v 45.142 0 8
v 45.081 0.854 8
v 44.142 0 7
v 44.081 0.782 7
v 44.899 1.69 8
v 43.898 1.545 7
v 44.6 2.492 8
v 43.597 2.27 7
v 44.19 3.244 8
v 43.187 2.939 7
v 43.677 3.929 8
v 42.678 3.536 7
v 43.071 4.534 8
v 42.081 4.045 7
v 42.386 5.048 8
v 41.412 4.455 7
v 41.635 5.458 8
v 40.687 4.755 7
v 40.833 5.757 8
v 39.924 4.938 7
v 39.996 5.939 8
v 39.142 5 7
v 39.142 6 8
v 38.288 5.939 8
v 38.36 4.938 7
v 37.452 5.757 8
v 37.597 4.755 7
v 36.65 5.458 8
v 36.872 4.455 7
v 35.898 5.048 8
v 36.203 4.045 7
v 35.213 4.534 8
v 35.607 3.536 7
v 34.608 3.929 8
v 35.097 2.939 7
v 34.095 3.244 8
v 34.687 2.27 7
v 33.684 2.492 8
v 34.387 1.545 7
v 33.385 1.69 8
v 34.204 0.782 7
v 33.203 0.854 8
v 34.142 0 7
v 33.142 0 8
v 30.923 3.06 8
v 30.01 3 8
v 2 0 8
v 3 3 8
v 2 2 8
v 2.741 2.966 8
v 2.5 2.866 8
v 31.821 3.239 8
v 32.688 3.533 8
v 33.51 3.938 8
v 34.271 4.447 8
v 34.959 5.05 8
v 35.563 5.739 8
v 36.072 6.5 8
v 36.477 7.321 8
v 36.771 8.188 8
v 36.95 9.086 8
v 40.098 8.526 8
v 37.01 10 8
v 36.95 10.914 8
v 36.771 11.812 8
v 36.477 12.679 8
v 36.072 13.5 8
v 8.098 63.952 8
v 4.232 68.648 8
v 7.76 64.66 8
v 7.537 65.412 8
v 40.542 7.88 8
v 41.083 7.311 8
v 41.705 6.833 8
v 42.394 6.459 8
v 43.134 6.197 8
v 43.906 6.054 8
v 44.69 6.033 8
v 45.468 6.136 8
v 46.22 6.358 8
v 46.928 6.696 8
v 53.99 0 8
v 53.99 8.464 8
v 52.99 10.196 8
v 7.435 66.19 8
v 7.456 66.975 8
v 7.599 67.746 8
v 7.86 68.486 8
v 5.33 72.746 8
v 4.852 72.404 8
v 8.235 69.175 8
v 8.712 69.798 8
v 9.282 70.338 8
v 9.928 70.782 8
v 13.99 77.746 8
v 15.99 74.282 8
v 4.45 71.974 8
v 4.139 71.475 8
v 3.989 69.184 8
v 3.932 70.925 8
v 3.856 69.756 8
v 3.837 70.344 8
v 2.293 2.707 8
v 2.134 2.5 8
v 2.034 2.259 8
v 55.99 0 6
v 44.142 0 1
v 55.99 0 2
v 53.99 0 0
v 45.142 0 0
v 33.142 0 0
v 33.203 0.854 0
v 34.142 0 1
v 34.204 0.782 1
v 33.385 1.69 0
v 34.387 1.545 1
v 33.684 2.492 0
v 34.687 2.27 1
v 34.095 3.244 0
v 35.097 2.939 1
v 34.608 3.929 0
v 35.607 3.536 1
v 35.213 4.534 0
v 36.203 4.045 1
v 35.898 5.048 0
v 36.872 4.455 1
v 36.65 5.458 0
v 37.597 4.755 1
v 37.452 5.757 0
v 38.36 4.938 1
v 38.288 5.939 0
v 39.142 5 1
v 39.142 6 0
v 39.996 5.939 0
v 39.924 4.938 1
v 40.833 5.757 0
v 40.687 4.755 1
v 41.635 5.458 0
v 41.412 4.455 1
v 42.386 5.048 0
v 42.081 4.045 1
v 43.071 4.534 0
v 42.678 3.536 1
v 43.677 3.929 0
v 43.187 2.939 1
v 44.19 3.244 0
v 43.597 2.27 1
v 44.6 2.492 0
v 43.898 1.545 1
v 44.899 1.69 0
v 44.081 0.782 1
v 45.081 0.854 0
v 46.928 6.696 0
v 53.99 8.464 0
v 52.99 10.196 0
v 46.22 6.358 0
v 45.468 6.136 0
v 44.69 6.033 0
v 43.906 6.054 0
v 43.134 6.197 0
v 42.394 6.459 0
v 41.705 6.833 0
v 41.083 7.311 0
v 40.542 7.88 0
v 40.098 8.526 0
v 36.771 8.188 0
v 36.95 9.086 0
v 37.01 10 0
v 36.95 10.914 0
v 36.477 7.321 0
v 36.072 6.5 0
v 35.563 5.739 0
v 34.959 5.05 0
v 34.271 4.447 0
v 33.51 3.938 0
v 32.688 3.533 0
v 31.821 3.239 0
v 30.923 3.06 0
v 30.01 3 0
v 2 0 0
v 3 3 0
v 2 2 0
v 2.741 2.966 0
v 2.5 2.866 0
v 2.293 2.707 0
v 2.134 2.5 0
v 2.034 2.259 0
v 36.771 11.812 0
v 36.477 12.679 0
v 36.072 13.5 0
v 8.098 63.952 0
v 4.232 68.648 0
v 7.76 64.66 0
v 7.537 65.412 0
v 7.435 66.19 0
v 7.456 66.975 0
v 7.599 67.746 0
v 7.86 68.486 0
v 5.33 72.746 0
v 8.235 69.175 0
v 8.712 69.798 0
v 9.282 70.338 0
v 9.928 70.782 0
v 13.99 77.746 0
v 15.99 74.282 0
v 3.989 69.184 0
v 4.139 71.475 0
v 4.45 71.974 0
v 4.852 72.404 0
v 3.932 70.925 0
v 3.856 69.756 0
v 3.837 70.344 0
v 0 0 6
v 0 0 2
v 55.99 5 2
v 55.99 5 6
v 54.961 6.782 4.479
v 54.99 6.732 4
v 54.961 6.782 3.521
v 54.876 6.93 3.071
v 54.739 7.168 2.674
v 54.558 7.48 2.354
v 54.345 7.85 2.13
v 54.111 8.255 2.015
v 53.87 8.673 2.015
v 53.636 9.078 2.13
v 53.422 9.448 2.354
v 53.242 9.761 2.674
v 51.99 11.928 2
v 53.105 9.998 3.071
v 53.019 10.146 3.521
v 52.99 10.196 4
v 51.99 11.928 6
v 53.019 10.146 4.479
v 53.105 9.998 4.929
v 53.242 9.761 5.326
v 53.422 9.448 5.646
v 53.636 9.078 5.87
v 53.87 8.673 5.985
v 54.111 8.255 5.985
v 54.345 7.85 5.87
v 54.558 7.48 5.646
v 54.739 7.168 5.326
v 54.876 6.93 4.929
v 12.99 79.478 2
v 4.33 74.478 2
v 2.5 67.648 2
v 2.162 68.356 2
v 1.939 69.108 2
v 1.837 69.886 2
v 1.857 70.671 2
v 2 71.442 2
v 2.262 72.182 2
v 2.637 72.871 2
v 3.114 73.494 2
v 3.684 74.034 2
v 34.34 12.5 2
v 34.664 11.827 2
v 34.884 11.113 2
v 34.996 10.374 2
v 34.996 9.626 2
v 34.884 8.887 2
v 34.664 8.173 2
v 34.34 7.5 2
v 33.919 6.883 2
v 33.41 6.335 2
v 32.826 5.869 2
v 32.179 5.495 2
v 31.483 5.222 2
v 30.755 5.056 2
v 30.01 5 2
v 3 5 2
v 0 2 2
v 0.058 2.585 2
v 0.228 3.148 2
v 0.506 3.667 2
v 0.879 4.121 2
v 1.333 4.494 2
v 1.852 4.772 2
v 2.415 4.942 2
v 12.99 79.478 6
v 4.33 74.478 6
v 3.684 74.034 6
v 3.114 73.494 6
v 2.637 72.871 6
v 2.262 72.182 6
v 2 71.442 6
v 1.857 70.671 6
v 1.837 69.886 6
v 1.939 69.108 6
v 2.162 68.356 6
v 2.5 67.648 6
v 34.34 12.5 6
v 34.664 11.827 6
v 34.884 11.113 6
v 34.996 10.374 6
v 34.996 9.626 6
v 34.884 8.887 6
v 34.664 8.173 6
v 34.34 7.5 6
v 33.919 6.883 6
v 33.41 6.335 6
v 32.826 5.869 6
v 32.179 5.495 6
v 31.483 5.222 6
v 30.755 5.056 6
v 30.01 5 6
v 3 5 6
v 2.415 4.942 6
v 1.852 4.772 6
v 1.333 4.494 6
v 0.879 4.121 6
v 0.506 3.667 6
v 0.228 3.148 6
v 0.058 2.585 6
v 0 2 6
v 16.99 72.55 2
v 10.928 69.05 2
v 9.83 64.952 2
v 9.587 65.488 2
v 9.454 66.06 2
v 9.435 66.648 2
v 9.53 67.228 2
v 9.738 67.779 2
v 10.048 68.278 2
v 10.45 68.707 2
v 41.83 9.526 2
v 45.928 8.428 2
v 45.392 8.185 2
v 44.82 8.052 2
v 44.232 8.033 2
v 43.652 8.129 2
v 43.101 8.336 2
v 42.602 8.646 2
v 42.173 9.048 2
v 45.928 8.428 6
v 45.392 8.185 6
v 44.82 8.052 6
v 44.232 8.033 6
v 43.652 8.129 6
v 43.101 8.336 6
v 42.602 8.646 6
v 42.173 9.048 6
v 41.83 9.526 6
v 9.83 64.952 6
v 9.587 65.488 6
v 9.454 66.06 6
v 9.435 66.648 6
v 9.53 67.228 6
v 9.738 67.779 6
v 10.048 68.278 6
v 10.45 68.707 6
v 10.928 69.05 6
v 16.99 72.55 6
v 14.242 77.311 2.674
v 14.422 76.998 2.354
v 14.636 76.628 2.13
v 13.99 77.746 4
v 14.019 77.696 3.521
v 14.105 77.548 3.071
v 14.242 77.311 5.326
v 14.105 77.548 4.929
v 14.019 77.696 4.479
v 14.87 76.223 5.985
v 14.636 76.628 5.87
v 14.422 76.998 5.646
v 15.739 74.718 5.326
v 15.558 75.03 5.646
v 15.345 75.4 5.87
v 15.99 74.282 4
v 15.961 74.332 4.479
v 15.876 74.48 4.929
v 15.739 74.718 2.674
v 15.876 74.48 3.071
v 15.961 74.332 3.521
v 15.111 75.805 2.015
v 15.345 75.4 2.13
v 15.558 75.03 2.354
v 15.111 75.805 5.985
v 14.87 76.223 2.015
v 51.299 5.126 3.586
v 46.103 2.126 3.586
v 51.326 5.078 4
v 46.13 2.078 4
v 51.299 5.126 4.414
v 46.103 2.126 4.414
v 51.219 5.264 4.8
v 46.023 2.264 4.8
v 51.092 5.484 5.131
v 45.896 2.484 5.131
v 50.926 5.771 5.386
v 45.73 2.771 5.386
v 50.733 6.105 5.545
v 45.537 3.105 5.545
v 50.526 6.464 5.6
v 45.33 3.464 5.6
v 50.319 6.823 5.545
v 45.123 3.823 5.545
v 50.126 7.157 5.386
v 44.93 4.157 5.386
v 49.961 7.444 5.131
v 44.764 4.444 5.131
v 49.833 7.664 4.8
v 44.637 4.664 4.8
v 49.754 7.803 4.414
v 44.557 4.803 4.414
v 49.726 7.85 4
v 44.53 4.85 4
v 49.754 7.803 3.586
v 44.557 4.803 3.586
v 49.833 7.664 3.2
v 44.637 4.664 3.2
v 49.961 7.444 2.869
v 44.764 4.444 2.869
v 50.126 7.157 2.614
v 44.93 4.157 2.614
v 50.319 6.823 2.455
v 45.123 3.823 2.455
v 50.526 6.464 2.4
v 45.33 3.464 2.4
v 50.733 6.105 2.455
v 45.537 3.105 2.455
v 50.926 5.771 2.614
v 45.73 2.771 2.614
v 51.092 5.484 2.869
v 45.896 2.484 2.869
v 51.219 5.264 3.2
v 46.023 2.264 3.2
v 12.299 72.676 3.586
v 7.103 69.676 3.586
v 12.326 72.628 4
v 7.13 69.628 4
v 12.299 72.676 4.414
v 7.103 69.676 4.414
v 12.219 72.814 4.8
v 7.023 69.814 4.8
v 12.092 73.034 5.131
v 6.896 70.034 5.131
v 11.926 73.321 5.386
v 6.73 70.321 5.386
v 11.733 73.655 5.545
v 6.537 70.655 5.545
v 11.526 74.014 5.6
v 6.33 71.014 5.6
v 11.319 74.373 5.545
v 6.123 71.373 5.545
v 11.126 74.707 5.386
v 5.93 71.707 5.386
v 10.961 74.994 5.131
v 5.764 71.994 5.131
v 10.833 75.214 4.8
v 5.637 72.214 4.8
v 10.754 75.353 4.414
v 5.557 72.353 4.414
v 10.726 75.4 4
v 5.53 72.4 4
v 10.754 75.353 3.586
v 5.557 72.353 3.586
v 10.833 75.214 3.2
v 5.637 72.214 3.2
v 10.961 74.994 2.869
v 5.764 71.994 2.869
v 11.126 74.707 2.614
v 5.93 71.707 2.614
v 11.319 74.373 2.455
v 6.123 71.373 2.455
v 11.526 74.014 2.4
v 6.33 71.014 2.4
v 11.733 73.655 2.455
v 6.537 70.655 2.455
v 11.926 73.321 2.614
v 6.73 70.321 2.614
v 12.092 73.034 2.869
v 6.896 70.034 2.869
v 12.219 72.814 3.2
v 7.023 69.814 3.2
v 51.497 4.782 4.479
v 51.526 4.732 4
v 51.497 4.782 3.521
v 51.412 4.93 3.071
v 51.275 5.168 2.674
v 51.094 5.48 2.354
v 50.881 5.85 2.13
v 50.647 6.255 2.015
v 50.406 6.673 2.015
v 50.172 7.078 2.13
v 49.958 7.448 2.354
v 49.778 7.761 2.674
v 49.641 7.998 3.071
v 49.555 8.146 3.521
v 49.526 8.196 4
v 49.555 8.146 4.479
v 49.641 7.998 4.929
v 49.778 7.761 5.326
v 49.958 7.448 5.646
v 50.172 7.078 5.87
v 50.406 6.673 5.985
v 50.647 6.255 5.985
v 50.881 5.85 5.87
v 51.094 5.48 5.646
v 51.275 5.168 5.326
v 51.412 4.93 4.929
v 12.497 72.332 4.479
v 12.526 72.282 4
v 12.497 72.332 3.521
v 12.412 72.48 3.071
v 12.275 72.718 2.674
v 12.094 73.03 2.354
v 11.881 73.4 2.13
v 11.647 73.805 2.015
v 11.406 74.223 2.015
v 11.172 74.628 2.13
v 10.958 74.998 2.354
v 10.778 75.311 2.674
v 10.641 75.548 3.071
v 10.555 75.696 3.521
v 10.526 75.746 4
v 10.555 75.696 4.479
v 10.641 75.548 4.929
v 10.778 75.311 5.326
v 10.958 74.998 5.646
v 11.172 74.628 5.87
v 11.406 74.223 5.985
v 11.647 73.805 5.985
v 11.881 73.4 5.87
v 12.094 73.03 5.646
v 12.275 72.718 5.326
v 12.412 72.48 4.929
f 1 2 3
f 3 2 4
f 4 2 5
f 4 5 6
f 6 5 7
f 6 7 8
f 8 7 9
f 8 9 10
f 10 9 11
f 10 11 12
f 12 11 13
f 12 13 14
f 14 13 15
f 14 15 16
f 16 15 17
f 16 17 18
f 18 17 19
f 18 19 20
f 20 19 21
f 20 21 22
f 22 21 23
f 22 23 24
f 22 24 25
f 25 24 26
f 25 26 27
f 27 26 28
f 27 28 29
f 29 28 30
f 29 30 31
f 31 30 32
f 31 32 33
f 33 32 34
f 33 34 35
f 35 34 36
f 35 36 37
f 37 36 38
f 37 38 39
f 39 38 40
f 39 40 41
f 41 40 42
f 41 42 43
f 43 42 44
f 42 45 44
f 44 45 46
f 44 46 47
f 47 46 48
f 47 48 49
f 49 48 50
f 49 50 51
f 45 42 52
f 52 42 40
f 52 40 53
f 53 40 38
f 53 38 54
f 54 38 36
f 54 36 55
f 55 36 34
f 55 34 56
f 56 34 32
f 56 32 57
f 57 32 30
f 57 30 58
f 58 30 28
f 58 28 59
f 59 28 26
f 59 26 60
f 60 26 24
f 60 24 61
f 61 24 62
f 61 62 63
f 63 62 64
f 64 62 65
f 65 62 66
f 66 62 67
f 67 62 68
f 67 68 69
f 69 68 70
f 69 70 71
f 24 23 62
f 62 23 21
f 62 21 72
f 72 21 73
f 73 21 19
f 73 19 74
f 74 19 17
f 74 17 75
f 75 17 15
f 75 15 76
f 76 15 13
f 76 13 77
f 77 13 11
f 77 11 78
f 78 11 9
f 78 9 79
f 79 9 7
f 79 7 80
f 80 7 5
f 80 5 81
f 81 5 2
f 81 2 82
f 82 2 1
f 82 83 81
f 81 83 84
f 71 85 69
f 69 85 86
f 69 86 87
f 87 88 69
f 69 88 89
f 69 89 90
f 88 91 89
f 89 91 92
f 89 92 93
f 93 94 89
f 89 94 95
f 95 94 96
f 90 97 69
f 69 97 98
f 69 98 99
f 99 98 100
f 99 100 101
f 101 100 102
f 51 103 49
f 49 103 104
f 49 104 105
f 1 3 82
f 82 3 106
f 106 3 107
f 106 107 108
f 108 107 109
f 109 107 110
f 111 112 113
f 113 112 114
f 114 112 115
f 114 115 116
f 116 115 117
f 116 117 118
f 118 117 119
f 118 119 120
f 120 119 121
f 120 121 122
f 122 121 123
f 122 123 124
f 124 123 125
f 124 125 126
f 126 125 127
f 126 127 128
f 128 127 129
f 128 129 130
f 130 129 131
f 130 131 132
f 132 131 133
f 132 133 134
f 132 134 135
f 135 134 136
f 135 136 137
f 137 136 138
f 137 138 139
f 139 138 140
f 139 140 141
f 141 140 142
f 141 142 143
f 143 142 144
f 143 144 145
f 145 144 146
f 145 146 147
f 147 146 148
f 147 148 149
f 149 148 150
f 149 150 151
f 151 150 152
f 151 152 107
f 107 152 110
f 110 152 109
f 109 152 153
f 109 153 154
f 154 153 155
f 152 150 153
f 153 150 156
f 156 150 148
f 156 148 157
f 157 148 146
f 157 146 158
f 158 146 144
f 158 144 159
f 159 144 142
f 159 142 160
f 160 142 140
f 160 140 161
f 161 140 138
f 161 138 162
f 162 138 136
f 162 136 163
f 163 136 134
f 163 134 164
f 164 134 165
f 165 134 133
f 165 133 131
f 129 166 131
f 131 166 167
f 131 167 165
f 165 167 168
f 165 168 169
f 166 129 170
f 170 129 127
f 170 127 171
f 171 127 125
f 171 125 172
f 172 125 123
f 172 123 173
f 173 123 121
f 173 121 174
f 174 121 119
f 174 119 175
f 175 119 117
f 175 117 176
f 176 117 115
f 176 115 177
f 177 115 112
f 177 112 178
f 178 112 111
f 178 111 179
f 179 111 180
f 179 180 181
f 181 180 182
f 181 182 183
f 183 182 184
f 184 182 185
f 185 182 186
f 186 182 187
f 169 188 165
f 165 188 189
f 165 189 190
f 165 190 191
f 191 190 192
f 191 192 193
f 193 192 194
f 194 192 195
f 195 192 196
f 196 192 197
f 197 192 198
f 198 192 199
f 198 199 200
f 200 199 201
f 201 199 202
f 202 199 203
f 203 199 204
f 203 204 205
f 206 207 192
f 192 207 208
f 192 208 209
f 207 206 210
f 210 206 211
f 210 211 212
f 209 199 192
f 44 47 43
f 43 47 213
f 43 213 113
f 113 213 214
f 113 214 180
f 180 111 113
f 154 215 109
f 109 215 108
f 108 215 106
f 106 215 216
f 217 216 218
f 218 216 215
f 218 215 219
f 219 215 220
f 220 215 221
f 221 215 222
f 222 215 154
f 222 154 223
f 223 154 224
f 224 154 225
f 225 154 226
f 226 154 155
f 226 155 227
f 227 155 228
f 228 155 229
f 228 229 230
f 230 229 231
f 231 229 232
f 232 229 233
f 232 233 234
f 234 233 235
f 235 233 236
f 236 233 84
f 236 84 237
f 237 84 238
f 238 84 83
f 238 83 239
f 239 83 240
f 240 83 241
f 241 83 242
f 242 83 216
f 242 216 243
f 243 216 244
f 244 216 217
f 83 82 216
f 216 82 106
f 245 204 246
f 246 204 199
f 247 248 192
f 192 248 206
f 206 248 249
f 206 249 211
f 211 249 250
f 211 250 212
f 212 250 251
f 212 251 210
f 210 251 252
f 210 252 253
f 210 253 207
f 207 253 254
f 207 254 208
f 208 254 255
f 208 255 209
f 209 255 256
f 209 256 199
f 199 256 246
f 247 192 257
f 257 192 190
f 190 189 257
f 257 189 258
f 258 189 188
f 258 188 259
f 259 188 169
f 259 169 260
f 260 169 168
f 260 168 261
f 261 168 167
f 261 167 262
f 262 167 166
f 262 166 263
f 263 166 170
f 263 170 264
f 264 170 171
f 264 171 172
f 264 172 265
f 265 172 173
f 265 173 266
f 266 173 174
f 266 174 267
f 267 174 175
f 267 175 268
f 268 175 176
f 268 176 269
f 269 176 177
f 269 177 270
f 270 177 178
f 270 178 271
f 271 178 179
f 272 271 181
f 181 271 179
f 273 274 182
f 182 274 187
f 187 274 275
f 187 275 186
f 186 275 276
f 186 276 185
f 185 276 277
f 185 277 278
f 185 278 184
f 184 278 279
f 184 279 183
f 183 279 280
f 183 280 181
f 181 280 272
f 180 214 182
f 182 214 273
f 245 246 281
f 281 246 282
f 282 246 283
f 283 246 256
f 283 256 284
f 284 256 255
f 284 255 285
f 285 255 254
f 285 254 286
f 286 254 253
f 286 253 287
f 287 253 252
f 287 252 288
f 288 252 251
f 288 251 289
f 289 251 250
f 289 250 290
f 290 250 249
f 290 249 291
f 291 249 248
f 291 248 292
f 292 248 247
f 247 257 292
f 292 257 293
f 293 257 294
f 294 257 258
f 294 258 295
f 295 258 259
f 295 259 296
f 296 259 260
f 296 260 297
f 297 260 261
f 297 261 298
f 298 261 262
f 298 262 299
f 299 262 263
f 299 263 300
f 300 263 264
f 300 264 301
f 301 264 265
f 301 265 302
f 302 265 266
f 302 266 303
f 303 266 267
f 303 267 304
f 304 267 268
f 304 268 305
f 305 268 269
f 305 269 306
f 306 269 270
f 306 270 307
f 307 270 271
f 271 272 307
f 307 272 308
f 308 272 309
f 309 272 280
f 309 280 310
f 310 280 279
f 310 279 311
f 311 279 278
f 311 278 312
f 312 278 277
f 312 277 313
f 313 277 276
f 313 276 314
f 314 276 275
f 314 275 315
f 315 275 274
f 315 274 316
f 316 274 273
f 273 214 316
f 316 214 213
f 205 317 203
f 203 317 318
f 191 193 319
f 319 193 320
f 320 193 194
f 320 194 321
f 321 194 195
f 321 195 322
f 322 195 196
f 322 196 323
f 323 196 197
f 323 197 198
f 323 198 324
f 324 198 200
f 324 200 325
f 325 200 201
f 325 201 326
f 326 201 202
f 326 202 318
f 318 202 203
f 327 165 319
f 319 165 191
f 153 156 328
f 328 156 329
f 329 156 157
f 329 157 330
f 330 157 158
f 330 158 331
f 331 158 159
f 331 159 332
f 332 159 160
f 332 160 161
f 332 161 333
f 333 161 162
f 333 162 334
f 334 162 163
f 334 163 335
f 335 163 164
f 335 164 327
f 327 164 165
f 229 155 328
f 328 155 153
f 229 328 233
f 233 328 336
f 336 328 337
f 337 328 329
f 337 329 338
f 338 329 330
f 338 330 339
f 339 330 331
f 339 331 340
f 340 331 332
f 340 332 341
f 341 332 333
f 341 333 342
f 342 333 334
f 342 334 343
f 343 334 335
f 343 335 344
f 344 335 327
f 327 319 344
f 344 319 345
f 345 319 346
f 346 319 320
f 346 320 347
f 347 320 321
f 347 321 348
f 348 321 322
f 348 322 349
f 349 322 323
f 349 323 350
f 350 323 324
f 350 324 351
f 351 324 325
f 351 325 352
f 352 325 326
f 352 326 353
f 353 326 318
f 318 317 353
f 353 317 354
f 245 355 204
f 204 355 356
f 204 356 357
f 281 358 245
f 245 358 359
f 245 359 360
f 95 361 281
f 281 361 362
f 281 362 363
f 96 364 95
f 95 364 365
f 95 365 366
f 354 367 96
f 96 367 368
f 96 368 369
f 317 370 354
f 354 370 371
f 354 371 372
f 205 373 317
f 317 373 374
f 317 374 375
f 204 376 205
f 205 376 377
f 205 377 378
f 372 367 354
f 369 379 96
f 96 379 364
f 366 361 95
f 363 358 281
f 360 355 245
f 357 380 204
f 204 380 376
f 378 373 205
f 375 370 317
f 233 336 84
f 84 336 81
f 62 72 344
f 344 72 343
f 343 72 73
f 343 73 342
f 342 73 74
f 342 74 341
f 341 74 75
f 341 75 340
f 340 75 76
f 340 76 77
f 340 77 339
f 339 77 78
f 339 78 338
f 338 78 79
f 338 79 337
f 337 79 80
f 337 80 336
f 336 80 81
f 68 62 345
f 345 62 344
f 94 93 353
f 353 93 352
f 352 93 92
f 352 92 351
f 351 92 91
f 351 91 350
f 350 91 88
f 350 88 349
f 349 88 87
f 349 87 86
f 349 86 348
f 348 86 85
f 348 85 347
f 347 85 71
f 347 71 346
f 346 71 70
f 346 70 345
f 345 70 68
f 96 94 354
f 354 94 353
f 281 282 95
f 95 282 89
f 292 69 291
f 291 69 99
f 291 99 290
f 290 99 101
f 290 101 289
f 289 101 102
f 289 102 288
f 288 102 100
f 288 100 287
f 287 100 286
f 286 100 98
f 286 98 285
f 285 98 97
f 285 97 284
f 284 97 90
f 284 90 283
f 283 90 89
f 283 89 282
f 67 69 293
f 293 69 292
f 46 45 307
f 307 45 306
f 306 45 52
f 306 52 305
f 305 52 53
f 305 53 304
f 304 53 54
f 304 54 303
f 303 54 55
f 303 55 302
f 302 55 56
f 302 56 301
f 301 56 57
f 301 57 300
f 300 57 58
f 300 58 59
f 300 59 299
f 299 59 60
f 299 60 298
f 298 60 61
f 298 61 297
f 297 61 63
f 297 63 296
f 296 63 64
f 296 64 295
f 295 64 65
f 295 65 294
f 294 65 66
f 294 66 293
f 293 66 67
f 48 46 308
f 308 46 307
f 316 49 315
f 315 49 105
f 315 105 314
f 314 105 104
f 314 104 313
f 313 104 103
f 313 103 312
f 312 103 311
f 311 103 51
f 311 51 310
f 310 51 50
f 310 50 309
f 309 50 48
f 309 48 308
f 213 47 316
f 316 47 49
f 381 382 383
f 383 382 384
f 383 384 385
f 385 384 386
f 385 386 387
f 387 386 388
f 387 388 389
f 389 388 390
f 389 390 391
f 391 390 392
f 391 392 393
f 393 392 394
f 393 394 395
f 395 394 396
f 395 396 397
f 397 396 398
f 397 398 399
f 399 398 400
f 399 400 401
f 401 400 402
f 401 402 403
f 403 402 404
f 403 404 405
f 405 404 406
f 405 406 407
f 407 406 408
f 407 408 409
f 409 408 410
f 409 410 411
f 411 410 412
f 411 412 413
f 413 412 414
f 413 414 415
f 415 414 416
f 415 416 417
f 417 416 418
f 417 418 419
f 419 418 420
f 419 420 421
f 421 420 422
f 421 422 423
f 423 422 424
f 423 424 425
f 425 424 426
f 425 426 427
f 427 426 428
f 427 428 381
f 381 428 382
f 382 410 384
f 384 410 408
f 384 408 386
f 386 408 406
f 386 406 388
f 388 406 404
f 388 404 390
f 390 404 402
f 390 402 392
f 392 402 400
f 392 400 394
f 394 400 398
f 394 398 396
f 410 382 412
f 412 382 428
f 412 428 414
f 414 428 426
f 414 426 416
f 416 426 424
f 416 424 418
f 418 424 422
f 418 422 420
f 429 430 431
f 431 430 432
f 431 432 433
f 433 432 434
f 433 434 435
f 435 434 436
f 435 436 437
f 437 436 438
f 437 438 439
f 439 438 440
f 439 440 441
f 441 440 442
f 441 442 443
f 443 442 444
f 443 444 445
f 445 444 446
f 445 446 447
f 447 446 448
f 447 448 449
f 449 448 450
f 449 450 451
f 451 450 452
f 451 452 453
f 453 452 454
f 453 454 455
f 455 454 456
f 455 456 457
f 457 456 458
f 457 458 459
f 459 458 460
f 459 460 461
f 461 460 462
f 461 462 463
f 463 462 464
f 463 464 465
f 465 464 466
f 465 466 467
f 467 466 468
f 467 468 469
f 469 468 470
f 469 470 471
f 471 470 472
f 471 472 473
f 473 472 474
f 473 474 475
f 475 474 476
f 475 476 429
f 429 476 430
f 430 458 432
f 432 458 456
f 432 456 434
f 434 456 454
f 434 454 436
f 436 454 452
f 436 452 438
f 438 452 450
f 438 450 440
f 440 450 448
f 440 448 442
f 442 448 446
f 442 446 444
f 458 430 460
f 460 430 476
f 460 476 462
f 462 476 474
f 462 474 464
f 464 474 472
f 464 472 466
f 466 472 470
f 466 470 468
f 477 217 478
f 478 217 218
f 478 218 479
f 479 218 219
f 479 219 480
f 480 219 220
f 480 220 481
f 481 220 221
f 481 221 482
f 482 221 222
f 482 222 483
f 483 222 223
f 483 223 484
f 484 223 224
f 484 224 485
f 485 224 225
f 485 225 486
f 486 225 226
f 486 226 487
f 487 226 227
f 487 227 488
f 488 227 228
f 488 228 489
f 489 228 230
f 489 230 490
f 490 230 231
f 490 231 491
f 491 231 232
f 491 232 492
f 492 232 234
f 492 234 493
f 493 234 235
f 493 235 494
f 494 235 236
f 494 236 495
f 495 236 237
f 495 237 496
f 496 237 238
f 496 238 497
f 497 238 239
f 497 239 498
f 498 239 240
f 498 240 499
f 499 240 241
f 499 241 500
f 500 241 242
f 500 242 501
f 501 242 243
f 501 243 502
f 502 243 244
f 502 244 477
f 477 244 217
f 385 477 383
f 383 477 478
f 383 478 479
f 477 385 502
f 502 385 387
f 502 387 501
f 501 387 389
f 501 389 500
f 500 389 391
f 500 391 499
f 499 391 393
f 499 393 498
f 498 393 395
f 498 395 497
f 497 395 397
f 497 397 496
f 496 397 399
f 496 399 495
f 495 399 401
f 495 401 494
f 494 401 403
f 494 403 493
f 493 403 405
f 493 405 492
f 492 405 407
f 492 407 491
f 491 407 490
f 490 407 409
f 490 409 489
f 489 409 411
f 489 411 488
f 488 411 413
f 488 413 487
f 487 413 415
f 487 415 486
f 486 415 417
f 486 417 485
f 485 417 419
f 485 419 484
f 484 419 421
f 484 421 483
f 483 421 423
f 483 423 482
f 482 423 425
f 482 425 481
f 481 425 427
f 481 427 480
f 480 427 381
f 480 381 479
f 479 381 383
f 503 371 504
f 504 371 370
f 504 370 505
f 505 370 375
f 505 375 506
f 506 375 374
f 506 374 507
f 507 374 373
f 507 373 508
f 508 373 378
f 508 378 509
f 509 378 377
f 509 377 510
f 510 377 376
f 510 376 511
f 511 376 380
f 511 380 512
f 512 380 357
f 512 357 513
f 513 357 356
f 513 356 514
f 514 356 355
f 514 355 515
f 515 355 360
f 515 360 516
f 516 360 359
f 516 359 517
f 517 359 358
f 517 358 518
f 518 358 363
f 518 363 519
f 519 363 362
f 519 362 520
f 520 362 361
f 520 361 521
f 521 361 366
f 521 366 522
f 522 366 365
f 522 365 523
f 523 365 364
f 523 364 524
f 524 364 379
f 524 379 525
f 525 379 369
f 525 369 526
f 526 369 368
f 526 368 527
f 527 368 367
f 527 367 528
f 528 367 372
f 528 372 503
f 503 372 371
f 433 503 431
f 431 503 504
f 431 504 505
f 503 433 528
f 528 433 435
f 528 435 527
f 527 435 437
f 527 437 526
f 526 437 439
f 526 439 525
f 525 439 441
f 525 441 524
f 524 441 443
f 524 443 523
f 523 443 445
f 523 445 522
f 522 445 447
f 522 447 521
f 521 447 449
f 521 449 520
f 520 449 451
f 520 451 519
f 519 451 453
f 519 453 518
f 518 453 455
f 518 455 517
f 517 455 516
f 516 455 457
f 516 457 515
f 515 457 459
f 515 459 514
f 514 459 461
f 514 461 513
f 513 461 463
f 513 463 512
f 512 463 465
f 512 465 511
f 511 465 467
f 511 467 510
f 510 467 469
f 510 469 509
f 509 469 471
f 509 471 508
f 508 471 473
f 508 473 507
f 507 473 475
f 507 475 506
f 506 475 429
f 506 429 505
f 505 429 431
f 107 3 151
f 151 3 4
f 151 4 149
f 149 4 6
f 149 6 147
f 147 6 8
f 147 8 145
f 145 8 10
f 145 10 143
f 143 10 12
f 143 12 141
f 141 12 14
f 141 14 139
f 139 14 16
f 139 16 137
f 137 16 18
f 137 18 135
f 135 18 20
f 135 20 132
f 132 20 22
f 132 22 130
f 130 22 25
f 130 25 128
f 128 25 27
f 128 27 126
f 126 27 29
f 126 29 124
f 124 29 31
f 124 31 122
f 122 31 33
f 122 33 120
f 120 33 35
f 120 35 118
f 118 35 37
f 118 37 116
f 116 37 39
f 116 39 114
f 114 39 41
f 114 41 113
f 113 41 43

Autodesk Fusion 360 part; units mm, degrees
sketch "Sketch1" plane through (0, 0, 0) normal (0, 0, 1) x (1, 0, 0)
  line L0 (0, 0) -> (55.9904, 0)
  line L1 (55.9904, 0) -> (55.9904, 5)
  line L2 (30.0096, 5) -> (3, 5)
  line L3 (0, 5) -> (0, 0)
  line L4 (34.3397, 12.5) -> (2.5, 67.6481)
  line L5 (41.5566, 0) -> (125.219, 0) construction
  line L6 (9.8301, 64.9519) -> (41.8301, 9.5263)
  line L7 (4.3301, 74.4782) -> (12.9904, 79.4782)
  line L8 (12.9904, 79.4782) -> (16.9904, 72.55)
  line L9 (16.9904, 72.55) -> (10.9282, 69.05)
  line L10 (14.9904, 76.0141) -> (36.6637, 88.5272) construction
  line L11 (0, 2) -> (0, 0) construction
  line L12 (55.9904, 5) -> (51.9904, 11.9282)
  line L13 (51.9904, 11.9282) -> (45.9282, 8.4282)
  arc A0 (4.3301, 74.4782) -> (2.5, 67.6481) centre (6.8301, 70.1481) ccw
  arc A1 (3, 5) -> (0, 2) centre (3, 2) ccw
  arc A2 (30.0096, 5) -> (34.3397, 12.5) centre (30.0096, 10) ccw
  arc A3 (41.8301, 9.5263) -> (45.9282, 8.4282) centre (44.4282, 11.0263) ccw
  arc A4 (10.9282, 69.05) -> (9.8301, 64.9519) centre (12.4282, 66.4519) ccw
  arc A5 (44.1423, 0) -> (34.1423, 0) centre (39.1423, 0) ccw
  line L14 (53.9904, 8.4641) -> (45.1077, 3.3357) construction
  point P0 (0, 71.9782)
  dimension "d1" = 5
  dimension "d2" = 120
  dimension "d3" = 5
  dimension "d4" = 8
  dimension "d8" = 8
  dimension "d9" = 5
  dimension "d10" = 3
  dimension "d11" = 5
  dimension "d12" = 3
  dimension "d13" = 3
  dimension "d24" = 5
  dimension "d30" = 10
  dimension "d31" = 5
  dimension "d32" = 78
extrude "Extrude1" add sketch "Sketch1" along normal blind 8 contours L0 L1 L2 L3 L4 L6 L7 L8 L9 L12 L13 A0 A1 A2 A3 A4 A5
sketch "Sketch2" plane through (44.1578, 25.4945, 0) normal (0.866, 0.5, 0) x (-0.5, 0.866, 0)
  line L0 (54.3349, 0) -> (62.3349, 0)
  line L1 (62.3349, 0) -> (62.3349, 8)
  line L2 (62.3349, 8) -> (54.3349, 8)
  line L3 (54.3349, 8) -> (54.3349, 0)
  line L4 (-23.6651, 0) -> (-15.6651, 0) construction
  line L5 (-15.6651, 0) -> (-15.6651, 8) construction
  line L6 (-15.6651, 8) -> (-23.6651, 8) construction
  line L7 (-23.6651, 8) -> (-23.6651, 0) construction
  line L8 (54.3349, 8) -> (62.3349, 0) construction
  line L9 (62.3349, 8) -> (54.3349, 0) construction
  line L10 (-23.6651, 8) -> (-15.6651, 0) construction
  line L11 (-15.6651, 8) -> (-23.6651, 0) construction
  circle A0 centre (-19.6651, 4) radius 2
  circle A1 centre (58.3349, 4) radius 2
  circle A2 centre (-19.6651, 4) radius 1.6
  circle A3 centre (58.3349, 4) radius 1.6
  dimension "d16" = 4
  dimension "d17" = 4
  dimension "d26" = 3.2
  dimension "d27" = 3.2
extrude "Extrude2" cut sketch "Sketch2" against normal blind 4 contours A0 | A1 | A2 | A3
extrude "Extrude3" cut sketch "Sketch2" against normal blind 10 contours A2 | A3
chamfer "Chamfer1" distance 2 angle 45 26 edges at (16.5048, 5, 8) (34.3397, 7.5, 8) (18.4199, 40.074, 8) (2.0005, 71.4422, 8) (8.6602, 76.9782, 8) (0, 1, 8) (0.8787, 4.1213, 8) (25.8301, 37.2391, 8) (43.6517, 8.1285, 8) (48.9593, 10.1782, 8) (13.9593, 70.8, 8) (9.5304, 67.2284, 8) (25.8301, 37.2391, 0) (9.5304, 67.2284, 0) (13.9593, 70.8, 0) (48.9593, 10.1782, 0) (43.6517, 8.1285, 0) (18.4199, 40.074, 0) (34.3397, 7.5, 0) (16.5048, 5, 0) (0.8787, 4.1213, 0) (0, 1, 0) (8.6602, 76.9782, 0) (2.0005, 71.4422, 0) (55.9904, 2.5, 8) (55.9904, 2.5, 0)
chamfer "Chamfer2" distance 1 angle 45 2 edges at (39.1423, 5, 0) (39.1423, 5, 8)
